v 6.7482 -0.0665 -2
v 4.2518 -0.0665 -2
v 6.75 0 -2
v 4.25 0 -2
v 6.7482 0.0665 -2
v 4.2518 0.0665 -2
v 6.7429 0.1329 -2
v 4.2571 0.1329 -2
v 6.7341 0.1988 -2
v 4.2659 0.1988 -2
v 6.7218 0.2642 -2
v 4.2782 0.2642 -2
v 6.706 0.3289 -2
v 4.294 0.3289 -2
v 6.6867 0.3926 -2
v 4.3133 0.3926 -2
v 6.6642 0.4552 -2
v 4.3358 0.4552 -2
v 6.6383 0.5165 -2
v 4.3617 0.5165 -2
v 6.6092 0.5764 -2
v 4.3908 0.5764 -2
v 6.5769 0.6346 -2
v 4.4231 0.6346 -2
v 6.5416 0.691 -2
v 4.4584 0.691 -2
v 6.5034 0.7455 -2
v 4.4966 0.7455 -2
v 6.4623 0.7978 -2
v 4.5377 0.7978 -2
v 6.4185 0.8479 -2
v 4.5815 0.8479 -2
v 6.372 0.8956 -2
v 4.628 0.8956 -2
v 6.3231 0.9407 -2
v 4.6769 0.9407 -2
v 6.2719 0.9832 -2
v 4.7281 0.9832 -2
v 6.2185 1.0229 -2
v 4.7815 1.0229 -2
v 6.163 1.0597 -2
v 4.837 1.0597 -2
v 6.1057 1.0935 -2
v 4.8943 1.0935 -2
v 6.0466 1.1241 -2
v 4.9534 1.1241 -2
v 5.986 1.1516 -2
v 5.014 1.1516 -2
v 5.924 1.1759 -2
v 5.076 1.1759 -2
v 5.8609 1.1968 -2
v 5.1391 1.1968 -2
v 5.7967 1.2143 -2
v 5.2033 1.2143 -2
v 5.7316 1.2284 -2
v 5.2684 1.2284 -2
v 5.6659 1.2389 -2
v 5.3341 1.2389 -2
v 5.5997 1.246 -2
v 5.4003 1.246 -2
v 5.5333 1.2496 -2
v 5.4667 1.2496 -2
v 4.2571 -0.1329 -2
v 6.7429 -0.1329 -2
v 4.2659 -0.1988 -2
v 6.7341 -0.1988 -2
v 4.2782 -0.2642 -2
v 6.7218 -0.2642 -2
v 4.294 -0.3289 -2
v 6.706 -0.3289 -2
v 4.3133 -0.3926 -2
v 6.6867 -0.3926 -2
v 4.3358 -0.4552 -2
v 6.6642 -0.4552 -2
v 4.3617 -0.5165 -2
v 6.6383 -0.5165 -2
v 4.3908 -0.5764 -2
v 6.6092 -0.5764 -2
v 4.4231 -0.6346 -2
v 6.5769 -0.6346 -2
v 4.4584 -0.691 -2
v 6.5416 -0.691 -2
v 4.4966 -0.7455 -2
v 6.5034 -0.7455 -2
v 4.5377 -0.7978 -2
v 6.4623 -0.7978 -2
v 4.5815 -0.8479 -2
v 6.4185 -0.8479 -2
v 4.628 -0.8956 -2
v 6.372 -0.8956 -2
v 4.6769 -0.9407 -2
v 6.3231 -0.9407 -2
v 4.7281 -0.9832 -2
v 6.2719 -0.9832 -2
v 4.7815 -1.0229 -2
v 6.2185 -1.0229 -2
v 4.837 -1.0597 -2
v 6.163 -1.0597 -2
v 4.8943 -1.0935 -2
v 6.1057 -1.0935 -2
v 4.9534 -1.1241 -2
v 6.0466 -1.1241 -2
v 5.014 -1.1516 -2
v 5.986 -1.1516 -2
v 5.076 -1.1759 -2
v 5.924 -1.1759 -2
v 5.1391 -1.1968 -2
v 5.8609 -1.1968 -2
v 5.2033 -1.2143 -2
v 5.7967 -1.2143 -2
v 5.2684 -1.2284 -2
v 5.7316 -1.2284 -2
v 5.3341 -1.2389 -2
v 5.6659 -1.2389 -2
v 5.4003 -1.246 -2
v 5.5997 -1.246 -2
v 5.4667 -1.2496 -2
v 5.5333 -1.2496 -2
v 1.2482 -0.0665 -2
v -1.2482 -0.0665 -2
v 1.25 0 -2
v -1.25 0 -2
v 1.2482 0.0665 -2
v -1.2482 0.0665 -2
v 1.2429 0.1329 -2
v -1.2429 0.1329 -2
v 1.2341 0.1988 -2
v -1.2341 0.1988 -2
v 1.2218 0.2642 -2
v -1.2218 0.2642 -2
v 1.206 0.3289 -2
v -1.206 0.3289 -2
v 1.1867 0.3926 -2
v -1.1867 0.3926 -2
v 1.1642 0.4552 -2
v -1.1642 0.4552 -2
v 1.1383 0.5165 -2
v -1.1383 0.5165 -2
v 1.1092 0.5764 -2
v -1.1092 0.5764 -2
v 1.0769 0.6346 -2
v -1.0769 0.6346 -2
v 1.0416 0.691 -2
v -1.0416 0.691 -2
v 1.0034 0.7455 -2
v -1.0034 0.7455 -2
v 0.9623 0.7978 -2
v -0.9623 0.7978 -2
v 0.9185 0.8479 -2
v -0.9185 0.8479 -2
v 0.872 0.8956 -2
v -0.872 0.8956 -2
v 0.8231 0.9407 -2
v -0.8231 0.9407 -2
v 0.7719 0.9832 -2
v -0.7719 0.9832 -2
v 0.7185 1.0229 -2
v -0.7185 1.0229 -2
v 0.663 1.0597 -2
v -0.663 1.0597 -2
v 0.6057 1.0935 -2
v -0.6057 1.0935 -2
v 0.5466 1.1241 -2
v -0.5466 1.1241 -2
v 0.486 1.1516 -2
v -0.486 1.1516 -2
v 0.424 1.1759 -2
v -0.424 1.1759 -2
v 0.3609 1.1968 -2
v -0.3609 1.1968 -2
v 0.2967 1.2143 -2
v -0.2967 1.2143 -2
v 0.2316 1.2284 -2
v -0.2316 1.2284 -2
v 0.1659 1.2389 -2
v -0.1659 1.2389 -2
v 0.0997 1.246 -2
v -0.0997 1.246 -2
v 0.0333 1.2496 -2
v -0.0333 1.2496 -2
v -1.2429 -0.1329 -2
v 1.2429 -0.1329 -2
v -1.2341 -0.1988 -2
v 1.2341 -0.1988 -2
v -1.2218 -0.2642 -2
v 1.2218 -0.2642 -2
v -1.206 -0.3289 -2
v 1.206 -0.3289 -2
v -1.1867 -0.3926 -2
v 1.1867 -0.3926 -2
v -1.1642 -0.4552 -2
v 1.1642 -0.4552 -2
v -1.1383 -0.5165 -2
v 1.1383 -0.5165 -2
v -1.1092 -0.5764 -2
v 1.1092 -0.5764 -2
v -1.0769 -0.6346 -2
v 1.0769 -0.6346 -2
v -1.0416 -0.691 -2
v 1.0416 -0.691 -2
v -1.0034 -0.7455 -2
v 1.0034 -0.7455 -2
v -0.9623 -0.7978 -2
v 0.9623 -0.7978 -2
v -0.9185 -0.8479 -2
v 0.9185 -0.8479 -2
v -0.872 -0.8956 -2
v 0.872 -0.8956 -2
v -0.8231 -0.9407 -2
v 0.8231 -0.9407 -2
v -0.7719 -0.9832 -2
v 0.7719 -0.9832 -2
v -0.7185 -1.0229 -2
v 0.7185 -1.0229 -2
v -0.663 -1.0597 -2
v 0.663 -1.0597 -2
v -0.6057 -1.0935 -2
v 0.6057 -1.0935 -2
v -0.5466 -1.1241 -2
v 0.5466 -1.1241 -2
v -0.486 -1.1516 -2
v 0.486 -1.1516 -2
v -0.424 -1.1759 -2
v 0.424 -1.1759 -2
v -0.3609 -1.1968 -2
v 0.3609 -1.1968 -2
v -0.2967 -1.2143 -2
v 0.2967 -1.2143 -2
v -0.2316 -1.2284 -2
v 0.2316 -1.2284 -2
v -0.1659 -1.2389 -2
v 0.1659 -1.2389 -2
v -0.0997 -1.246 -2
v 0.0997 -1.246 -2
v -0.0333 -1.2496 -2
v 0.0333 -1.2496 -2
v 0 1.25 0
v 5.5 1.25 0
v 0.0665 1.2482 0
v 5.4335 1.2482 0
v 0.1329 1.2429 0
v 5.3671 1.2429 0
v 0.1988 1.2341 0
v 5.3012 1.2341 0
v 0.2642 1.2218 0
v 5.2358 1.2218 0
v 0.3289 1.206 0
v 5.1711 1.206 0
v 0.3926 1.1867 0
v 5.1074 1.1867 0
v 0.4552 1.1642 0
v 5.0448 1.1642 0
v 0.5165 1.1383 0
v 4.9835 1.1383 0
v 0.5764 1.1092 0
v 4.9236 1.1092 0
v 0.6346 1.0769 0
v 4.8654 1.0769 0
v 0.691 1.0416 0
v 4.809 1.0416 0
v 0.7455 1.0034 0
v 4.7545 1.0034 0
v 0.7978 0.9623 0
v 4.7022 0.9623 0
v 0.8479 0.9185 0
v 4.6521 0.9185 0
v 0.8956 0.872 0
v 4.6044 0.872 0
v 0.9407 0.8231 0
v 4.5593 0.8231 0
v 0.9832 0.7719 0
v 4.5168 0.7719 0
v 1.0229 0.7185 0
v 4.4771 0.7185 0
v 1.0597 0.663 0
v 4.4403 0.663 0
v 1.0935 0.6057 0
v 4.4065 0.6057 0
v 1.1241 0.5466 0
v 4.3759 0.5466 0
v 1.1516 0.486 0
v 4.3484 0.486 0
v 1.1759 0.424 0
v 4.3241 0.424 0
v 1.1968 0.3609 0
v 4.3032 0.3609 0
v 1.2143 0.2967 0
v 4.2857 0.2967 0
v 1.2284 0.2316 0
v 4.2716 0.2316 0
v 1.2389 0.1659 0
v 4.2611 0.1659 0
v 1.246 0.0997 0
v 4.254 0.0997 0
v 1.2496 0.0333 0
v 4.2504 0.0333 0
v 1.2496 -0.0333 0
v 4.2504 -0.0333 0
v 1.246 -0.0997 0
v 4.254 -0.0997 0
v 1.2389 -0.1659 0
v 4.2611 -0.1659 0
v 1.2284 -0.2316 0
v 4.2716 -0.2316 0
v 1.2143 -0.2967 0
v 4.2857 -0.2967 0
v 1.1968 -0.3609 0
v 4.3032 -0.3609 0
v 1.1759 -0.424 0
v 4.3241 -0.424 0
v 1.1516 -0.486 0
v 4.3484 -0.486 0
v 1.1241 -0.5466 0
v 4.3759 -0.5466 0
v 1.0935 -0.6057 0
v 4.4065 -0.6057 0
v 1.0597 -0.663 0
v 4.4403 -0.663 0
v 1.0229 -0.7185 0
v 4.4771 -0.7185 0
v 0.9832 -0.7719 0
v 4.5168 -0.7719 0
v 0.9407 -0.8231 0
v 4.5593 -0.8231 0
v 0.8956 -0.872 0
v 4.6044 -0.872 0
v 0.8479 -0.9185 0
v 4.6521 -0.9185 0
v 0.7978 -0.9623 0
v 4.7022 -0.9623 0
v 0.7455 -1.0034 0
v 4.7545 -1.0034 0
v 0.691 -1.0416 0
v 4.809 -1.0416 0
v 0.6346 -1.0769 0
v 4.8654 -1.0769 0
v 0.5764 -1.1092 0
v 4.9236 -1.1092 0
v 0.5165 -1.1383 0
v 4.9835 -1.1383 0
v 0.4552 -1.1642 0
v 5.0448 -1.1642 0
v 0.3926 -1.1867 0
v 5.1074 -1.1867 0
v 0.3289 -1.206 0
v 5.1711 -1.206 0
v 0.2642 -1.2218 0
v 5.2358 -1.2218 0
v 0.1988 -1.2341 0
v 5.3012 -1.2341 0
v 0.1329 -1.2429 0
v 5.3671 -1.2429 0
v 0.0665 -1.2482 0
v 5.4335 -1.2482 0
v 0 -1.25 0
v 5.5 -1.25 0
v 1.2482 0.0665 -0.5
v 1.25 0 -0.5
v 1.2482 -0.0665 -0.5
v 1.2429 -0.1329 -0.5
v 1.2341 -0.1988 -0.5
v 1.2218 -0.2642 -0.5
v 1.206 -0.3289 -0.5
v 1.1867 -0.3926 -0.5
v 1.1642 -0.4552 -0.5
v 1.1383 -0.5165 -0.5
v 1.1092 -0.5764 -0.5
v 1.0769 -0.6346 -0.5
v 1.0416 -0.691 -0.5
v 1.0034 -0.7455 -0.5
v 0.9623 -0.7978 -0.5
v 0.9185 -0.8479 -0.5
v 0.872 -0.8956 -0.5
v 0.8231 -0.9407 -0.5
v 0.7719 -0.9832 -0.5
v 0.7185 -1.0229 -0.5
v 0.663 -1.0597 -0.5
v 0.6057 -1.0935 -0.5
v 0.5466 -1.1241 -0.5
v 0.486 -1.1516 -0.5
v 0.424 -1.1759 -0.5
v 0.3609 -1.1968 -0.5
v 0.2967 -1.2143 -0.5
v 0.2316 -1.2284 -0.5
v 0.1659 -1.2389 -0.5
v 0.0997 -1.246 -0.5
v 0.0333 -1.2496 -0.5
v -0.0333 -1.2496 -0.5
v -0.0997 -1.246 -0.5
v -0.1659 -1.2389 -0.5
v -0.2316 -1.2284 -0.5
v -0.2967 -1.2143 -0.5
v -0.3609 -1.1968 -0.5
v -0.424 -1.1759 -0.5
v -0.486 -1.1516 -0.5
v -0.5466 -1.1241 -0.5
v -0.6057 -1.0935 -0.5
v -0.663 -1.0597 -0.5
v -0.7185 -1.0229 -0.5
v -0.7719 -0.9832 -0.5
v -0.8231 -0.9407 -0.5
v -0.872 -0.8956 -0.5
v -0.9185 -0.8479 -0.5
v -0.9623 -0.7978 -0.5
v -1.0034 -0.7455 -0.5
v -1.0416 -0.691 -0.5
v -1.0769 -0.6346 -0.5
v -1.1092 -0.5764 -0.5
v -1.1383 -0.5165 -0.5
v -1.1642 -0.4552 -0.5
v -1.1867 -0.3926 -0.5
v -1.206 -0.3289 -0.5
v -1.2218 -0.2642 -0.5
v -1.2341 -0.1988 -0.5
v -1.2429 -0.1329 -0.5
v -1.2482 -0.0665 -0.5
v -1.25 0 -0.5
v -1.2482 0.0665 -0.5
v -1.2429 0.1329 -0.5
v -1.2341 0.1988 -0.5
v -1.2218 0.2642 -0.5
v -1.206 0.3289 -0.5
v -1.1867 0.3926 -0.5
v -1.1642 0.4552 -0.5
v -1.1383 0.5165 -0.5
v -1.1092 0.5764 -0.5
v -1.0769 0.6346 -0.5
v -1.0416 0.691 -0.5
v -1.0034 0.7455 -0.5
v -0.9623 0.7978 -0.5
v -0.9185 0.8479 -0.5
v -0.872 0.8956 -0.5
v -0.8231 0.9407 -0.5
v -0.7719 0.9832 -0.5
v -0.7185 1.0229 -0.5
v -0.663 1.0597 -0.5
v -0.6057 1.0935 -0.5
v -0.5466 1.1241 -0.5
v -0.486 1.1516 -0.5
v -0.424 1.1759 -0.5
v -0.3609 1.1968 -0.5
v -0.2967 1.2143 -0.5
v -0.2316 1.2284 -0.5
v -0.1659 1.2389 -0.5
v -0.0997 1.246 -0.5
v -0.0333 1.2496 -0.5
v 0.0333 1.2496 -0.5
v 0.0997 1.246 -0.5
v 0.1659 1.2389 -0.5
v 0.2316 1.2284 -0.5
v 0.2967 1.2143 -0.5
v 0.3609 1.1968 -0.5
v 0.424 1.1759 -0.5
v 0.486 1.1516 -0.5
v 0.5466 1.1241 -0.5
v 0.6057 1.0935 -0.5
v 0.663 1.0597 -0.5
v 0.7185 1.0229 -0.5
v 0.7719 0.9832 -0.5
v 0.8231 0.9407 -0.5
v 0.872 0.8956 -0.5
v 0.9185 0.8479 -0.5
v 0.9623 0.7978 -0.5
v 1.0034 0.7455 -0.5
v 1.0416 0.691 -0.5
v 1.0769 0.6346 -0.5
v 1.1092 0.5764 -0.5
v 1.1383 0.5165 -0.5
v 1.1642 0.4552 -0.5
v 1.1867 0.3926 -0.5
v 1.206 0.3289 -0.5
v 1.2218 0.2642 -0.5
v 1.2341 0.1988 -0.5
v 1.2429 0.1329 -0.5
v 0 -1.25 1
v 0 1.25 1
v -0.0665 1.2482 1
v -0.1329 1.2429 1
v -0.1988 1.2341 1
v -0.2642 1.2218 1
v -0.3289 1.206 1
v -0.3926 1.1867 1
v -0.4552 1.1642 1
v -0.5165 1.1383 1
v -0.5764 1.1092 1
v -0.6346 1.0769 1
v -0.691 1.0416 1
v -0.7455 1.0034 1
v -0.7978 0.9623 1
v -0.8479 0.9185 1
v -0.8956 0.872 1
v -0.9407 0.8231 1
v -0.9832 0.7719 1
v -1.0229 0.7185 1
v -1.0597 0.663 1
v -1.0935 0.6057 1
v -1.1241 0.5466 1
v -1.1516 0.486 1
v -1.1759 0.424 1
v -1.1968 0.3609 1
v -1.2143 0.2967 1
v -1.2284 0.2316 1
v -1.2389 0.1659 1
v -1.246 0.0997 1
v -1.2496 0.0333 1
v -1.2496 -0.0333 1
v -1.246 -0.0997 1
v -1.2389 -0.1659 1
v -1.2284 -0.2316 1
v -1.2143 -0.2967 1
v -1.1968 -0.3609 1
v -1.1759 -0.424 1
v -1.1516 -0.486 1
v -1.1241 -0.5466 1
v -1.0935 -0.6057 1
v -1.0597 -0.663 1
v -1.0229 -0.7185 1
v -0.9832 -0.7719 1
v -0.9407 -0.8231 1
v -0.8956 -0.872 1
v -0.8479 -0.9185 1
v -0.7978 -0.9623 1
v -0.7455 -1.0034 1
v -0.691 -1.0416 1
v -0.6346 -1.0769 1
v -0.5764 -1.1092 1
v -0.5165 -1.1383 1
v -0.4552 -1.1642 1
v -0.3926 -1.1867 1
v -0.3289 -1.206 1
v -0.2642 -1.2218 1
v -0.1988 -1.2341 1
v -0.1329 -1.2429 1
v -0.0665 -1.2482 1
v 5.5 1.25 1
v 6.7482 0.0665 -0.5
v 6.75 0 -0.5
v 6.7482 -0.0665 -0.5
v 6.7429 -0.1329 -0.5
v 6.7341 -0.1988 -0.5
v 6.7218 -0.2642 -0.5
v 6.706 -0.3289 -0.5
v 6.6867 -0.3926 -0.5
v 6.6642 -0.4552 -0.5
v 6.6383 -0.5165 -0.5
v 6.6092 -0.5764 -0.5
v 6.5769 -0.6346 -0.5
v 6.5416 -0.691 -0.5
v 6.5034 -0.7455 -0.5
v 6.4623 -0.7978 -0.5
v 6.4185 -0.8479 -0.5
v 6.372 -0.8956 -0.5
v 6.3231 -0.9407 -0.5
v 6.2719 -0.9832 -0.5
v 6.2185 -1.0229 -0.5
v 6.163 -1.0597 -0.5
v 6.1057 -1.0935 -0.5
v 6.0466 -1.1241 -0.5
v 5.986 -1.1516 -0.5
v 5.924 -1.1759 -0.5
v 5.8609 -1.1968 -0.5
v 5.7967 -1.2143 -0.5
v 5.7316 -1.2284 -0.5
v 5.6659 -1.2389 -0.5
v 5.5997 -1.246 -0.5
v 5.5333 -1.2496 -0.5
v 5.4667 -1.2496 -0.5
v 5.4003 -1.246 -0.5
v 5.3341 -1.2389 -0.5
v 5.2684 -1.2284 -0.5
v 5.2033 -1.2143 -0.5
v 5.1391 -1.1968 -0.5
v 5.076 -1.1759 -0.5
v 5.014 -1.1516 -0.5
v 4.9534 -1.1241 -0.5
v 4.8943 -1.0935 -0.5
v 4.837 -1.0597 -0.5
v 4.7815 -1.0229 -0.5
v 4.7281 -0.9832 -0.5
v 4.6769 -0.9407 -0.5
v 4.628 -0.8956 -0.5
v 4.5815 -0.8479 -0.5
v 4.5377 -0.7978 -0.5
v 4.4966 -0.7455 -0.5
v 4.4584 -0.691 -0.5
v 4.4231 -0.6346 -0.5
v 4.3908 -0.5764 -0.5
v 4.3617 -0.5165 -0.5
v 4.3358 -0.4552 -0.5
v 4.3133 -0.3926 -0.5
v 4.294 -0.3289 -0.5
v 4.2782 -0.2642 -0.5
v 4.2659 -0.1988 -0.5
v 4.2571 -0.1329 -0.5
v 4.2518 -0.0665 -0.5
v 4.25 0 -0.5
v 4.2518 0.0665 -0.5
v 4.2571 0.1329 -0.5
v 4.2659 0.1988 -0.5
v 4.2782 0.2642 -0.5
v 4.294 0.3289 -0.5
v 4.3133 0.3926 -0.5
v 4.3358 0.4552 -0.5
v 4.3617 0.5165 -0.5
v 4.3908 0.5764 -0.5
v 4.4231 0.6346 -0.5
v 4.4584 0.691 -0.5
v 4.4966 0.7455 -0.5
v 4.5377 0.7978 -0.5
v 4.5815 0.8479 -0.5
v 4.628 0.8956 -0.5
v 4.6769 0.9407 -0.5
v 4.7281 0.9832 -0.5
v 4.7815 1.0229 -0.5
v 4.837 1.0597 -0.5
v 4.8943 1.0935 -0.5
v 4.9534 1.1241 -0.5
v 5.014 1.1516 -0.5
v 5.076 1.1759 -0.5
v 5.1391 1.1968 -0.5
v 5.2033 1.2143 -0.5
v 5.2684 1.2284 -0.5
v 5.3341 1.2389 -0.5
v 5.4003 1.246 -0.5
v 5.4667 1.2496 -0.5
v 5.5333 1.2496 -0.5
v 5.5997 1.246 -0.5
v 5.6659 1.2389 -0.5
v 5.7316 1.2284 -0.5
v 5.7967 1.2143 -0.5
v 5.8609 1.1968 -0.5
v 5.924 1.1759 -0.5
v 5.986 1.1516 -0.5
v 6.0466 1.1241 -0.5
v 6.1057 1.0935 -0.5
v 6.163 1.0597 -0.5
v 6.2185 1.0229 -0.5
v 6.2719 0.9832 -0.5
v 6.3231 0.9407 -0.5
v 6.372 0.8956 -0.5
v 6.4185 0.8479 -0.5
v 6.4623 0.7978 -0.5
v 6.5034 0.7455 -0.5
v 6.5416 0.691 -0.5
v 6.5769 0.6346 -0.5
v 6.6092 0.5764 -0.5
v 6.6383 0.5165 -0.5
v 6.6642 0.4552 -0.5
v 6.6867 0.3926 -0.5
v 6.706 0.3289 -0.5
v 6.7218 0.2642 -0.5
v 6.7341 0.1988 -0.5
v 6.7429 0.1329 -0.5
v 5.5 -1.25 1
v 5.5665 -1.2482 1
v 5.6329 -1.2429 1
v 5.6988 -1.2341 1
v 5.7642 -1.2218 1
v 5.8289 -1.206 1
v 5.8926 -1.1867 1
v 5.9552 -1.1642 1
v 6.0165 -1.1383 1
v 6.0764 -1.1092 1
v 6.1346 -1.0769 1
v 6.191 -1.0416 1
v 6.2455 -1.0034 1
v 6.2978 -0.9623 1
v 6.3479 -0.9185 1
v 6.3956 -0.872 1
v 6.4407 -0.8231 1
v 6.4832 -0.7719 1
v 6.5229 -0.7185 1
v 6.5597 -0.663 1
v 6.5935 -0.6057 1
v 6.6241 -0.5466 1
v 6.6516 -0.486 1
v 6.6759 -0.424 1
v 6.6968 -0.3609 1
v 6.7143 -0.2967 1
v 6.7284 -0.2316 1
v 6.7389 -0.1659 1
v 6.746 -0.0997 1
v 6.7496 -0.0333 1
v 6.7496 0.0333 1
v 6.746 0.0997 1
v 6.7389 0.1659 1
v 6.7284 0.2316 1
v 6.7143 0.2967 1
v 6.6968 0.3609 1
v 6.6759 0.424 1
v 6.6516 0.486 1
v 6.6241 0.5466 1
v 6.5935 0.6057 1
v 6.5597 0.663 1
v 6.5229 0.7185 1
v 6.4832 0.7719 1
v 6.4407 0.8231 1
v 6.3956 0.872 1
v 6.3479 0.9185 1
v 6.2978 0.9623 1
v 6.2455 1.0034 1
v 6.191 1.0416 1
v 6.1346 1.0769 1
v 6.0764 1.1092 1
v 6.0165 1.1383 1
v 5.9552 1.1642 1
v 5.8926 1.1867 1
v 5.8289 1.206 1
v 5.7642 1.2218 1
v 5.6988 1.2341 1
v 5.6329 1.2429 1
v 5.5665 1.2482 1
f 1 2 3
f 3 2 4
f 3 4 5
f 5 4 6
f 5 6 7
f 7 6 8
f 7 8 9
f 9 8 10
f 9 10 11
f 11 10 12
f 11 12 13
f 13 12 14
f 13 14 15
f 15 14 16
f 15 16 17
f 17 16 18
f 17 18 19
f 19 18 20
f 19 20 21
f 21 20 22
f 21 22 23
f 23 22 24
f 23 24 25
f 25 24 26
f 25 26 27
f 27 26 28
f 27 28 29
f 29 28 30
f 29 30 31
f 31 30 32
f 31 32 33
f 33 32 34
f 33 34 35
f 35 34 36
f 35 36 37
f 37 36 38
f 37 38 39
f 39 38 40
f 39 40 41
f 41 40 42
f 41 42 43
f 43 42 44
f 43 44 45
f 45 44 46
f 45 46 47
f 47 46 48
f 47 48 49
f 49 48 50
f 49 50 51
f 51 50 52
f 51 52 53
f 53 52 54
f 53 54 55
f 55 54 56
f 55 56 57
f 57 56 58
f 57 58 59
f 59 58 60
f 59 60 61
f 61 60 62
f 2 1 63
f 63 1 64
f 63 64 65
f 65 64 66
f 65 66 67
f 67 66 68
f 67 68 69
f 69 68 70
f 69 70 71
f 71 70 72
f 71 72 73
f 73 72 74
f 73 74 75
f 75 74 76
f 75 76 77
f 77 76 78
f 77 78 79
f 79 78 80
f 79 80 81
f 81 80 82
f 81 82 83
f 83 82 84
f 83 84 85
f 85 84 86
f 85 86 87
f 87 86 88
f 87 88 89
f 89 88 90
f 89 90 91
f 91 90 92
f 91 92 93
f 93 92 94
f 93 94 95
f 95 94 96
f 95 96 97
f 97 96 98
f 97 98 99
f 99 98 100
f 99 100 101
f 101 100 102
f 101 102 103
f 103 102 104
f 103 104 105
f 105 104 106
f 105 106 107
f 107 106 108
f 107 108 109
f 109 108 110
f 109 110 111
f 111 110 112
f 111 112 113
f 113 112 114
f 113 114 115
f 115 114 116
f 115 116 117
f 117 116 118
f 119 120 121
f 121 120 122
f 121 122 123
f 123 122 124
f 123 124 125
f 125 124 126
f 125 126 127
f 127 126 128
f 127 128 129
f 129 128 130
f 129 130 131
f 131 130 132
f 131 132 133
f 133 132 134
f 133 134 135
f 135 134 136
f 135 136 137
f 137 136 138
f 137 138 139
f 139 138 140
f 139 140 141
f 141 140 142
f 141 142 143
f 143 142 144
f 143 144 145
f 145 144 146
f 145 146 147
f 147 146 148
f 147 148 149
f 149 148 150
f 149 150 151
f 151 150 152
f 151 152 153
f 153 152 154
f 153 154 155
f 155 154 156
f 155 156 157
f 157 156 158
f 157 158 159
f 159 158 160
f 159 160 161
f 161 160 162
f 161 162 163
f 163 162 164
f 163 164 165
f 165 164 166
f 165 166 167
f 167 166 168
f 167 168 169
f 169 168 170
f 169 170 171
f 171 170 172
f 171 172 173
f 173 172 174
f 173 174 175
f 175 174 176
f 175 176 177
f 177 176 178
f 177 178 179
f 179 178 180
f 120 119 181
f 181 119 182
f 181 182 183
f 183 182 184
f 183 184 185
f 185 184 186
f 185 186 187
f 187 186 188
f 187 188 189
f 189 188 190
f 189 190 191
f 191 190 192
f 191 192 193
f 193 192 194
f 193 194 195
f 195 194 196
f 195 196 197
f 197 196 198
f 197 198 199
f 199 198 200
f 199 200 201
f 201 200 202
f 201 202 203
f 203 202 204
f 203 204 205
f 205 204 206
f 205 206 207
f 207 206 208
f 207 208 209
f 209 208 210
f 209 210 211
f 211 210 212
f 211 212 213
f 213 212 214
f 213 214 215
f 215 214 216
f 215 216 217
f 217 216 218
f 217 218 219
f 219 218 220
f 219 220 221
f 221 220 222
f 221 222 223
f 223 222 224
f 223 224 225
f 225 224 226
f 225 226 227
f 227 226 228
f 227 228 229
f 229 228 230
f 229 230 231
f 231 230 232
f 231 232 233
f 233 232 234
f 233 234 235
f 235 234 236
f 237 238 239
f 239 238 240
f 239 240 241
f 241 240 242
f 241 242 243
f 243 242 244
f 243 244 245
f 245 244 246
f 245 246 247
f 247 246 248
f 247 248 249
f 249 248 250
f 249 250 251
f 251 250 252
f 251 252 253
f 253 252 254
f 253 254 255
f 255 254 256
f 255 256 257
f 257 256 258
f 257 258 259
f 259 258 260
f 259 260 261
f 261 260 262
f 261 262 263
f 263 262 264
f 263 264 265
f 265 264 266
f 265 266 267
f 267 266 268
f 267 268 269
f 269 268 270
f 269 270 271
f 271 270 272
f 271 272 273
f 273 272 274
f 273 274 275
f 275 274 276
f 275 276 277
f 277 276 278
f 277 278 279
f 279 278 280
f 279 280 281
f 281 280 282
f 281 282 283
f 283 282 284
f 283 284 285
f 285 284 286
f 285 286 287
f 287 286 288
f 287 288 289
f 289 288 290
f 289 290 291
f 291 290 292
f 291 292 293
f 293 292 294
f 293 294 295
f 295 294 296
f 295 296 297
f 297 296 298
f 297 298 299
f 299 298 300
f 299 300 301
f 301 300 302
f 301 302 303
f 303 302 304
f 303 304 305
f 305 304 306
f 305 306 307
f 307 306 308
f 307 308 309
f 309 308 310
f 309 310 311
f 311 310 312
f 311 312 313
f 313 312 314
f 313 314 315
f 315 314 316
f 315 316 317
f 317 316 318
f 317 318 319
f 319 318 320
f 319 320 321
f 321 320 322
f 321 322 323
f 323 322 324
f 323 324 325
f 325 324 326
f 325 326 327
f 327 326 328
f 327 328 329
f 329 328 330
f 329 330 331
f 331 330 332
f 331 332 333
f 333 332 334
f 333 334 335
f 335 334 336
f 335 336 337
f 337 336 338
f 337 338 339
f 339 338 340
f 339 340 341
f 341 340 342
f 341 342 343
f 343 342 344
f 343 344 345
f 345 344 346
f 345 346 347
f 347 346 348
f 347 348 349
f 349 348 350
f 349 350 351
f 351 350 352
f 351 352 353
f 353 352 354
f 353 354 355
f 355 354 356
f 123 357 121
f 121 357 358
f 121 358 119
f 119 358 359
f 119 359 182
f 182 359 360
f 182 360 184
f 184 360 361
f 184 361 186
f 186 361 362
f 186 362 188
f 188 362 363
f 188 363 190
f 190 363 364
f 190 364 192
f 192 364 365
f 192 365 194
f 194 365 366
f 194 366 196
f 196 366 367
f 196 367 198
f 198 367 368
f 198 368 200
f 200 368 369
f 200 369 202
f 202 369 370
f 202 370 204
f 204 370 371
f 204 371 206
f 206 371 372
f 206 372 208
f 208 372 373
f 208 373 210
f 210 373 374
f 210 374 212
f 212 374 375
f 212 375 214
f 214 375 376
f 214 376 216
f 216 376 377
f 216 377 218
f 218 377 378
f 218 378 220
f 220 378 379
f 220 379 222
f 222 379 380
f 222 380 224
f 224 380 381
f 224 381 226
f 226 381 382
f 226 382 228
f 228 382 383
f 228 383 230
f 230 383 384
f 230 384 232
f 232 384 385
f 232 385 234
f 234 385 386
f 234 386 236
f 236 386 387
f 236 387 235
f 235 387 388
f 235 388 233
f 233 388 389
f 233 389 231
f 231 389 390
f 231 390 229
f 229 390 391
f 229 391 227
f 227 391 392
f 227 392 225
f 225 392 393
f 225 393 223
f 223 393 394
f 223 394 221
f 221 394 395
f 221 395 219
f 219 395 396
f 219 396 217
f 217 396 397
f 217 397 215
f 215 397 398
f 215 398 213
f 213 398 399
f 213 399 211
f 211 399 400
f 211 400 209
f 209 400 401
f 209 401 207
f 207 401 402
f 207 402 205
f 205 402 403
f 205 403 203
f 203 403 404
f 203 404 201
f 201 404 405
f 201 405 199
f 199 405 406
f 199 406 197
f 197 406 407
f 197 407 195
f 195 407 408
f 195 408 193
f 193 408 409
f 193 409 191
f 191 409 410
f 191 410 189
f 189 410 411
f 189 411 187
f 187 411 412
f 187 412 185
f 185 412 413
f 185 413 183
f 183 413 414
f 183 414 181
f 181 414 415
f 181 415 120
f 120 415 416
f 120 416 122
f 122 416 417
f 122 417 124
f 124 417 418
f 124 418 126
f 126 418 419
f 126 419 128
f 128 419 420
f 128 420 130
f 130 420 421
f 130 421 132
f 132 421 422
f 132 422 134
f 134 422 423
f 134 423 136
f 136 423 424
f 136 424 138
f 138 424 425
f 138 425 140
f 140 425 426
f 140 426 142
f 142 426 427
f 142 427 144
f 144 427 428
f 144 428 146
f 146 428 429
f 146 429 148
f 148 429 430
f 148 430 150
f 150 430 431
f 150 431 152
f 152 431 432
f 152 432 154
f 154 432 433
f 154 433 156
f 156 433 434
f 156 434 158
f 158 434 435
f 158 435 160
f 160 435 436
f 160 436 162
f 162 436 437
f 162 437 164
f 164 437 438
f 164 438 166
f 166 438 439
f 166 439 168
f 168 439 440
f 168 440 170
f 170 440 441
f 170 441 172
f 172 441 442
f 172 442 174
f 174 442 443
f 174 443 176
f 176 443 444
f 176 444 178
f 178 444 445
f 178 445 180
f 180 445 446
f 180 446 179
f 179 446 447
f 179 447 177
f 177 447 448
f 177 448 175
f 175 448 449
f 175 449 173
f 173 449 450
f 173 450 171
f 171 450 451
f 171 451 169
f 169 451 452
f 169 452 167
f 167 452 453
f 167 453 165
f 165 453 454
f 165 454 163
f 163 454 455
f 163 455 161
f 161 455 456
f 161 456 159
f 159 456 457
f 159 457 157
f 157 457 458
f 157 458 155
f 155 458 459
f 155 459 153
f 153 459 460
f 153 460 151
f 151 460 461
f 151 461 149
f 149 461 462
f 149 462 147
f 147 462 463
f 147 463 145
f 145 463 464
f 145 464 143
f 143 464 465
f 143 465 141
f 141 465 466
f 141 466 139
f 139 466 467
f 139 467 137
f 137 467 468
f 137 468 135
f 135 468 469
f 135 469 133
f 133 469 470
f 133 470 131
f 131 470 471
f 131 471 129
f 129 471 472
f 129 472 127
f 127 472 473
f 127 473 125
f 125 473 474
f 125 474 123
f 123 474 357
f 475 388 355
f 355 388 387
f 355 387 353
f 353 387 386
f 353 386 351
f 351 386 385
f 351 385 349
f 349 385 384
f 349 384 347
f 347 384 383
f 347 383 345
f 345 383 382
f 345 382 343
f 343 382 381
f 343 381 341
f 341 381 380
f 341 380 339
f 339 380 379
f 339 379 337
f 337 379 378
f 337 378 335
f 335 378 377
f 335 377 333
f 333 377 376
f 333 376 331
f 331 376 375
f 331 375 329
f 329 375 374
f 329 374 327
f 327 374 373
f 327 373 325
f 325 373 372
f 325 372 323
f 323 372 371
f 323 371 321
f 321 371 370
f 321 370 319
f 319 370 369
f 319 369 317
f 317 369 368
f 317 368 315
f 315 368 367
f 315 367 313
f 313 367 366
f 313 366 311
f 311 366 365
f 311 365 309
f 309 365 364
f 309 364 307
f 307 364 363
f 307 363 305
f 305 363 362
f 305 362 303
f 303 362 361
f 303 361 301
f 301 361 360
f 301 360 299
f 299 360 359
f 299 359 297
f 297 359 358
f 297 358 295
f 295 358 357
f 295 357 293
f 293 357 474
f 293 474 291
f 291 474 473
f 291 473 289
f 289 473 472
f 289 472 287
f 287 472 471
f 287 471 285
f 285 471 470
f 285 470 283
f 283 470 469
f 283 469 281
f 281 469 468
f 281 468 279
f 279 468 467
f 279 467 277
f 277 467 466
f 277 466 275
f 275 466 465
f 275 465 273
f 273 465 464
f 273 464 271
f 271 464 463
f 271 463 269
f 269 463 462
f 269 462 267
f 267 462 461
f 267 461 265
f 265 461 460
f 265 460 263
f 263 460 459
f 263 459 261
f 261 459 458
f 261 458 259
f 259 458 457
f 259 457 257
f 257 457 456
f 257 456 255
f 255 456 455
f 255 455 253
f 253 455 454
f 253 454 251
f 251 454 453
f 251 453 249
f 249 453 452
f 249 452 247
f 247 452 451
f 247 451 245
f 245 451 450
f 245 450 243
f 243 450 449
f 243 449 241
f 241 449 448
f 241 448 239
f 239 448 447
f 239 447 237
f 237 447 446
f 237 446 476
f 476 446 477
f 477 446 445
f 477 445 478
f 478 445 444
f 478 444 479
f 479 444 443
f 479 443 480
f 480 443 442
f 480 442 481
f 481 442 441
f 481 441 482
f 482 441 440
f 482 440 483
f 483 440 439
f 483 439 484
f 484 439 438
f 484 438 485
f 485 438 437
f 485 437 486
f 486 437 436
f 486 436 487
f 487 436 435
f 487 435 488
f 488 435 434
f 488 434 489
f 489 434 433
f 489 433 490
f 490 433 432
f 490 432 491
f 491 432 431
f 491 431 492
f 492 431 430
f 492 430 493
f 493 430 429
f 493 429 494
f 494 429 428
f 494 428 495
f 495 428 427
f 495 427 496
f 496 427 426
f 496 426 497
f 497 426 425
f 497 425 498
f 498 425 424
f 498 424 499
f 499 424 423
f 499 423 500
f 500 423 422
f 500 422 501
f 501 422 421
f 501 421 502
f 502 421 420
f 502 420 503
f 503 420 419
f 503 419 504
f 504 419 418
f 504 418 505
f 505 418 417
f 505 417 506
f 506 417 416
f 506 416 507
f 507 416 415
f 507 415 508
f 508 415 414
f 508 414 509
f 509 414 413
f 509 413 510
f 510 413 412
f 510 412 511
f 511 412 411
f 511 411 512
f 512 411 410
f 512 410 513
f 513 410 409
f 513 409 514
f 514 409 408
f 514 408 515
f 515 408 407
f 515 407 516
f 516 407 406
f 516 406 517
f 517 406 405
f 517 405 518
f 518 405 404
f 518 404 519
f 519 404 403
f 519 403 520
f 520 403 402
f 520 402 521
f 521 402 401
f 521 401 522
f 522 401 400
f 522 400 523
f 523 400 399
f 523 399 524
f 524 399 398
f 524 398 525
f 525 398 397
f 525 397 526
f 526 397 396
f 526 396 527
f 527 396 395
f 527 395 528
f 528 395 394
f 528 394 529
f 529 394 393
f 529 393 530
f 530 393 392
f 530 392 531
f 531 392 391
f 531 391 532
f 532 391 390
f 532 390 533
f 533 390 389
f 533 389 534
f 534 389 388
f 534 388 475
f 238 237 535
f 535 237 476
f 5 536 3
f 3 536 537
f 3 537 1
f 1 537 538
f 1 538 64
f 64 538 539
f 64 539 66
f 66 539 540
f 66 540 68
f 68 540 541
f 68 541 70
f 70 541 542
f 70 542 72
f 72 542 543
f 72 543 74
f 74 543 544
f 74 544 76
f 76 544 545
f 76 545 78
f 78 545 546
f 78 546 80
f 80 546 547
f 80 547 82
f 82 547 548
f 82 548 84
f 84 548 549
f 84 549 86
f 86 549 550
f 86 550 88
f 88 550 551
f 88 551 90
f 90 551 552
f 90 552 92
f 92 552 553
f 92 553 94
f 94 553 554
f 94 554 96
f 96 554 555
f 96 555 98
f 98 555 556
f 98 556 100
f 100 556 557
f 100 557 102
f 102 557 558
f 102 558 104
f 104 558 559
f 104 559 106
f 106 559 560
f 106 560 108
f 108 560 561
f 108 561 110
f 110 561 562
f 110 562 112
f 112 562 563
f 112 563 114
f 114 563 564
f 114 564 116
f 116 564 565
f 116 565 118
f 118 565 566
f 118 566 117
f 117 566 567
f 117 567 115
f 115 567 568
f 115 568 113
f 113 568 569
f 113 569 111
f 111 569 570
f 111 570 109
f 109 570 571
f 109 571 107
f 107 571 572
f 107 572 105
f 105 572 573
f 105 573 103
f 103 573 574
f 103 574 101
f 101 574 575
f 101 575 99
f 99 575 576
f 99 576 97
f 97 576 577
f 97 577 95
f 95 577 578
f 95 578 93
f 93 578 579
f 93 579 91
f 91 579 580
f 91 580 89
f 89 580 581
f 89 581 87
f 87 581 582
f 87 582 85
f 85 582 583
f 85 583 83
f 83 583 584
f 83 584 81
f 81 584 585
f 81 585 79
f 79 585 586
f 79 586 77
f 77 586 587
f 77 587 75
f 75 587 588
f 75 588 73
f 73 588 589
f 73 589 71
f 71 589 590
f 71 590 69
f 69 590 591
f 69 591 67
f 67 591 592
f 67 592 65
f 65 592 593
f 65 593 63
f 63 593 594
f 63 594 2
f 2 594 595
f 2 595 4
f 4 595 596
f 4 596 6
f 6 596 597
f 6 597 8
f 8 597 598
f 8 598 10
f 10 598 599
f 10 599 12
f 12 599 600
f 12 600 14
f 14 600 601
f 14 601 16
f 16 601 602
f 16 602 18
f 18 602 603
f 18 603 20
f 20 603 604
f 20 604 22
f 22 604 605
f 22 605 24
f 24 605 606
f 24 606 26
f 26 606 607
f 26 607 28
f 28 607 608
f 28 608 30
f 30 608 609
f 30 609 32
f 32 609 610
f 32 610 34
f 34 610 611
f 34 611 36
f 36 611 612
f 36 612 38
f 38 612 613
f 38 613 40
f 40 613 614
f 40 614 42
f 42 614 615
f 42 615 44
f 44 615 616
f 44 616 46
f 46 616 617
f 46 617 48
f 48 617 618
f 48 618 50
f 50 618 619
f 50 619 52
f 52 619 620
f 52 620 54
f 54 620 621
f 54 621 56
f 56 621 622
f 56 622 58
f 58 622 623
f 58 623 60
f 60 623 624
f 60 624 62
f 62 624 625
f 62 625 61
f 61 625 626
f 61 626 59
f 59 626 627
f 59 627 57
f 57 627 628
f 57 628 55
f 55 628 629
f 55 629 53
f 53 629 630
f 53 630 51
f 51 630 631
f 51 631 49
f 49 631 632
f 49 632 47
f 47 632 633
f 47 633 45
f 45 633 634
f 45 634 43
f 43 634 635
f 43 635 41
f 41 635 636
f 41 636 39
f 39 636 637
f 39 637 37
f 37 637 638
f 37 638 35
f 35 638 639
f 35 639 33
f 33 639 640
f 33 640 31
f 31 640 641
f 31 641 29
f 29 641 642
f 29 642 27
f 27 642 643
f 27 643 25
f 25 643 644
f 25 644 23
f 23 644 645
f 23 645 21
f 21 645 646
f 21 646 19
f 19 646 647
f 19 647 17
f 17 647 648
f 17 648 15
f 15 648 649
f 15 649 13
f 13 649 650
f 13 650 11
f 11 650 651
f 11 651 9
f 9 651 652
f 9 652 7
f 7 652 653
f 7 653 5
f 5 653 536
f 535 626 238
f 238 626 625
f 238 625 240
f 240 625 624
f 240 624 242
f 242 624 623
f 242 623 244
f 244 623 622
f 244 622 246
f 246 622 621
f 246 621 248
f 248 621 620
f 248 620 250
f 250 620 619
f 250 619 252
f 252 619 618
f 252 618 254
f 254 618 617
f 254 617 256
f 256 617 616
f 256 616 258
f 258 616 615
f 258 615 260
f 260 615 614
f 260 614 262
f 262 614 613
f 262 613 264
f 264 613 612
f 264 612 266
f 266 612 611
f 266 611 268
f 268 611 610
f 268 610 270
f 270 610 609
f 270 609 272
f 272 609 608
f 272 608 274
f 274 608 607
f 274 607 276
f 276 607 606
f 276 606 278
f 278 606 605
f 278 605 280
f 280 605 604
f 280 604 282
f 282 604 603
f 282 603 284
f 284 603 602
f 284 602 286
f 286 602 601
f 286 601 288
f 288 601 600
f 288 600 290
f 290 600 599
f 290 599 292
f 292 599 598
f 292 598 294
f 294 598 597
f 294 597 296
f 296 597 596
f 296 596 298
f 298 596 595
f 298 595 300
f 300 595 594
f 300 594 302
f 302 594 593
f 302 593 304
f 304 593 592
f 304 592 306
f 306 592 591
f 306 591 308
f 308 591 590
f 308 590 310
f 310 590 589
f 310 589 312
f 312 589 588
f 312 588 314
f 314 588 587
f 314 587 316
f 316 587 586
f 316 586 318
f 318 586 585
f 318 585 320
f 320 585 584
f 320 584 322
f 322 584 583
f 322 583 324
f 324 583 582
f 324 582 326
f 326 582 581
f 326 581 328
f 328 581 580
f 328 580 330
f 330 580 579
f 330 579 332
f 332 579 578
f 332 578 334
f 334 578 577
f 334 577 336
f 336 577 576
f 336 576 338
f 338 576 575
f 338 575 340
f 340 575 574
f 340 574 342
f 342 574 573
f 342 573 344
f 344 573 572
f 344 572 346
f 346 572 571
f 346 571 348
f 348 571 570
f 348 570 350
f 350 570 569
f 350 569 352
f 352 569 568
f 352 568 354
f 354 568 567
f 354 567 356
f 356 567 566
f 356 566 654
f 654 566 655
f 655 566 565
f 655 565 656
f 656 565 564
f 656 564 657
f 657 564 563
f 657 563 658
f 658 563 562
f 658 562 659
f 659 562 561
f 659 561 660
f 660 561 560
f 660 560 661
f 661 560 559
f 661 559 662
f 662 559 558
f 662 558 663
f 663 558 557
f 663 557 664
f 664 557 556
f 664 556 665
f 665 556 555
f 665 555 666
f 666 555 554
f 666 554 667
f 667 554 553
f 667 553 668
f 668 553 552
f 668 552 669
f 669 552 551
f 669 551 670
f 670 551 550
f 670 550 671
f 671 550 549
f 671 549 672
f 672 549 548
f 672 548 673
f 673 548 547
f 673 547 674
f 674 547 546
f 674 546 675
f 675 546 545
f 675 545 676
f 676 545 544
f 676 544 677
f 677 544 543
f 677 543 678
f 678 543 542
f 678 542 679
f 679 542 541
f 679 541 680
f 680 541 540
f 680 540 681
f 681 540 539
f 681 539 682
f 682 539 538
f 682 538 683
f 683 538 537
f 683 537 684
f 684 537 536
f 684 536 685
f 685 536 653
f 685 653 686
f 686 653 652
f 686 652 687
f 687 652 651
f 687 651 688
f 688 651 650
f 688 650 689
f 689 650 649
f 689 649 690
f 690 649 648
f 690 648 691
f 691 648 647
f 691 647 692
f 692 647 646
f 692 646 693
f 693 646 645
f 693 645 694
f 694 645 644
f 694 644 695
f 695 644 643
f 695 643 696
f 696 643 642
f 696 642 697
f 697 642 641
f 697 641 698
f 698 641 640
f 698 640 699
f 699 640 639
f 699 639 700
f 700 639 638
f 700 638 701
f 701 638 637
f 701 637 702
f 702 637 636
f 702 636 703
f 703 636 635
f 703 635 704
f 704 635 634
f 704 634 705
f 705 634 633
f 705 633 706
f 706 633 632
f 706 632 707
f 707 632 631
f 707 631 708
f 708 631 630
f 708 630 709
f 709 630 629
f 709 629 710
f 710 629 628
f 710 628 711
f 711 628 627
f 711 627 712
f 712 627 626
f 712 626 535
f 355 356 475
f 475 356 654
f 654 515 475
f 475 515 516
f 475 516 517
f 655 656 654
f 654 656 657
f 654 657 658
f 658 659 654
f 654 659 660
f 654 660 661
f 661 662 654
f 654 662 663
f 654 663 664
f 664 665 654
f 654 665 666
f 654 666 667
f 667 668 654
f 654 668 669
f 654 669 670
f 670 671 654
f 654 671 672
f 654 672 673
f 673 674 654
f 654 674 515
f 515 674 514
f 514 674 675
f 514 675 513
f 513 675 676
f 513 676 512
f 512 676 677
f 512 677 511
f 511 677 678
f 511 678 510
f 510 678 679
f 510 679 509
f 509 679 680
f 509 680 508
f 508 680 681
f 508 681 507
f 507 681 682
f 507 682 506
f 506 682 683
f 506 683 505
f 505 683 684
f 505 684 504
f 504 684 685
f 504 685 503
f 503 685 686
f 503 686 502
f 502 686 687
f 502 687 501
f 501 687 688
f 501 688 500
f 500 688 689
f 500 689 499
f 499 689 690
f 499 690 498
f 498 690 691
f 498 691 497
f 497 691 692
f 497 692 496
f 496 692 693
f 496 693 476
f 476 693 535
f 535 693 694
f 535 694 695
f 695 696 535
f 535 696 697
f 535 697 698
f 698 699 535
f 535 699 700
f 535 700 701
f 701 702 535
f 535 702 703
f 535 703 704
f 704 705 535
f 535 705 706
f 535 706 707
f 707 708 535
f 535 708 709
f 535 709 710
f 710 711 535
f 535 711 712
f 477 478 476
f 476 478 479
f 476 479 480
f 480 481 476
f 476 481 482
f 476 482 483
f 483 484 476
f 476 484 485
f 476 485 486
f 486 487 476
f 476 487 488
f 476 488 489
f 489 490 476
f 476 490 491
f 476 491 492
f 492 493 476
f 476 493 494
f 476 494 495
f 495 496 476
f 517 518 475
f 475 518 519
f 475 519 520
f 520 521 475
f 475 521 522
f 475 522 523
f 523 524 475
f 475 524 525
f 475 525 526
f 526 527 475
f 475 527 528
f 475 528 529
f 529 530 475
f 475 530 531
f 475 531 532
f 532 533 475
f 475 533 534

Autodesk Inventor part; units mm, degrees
ref_plane "YZ Plane" through (0, 0, 0) normal (1, 0, 0) x (0, 1, 0)
ref_plane "XZ Plane" through (0, 0, 0) normal (0, 1, 0) x (-1, 0, 0)
ref_plane "XY Plane" through (0, 0, 0) normal (0, 0, 1) x (1, 0, 0)
sketch "스케치1" plane through (0, 0, 0) normal (0, 0, 1) x (1, 0, 0)
  circle A0 centre (0, 0) radius 1.25
  circle A1 centre (5.5, 0) radius 1.25
  line L0 (0, 1.25) -> (5.5, 1.25)
  line L1 (0, -1.25) -> (5.5, -1.25)
  dimension "d0" = 5.5
  dimension "d1" = 2.5
extrude "돌출1" add sketch "스케치1" along normal blind 1
extrude "돌출2" add sketch "스케치1" against normal blind 2 contours A0 | A1
properties part number "ModuleConnector_Axis_Connector_3D 인쇄"
